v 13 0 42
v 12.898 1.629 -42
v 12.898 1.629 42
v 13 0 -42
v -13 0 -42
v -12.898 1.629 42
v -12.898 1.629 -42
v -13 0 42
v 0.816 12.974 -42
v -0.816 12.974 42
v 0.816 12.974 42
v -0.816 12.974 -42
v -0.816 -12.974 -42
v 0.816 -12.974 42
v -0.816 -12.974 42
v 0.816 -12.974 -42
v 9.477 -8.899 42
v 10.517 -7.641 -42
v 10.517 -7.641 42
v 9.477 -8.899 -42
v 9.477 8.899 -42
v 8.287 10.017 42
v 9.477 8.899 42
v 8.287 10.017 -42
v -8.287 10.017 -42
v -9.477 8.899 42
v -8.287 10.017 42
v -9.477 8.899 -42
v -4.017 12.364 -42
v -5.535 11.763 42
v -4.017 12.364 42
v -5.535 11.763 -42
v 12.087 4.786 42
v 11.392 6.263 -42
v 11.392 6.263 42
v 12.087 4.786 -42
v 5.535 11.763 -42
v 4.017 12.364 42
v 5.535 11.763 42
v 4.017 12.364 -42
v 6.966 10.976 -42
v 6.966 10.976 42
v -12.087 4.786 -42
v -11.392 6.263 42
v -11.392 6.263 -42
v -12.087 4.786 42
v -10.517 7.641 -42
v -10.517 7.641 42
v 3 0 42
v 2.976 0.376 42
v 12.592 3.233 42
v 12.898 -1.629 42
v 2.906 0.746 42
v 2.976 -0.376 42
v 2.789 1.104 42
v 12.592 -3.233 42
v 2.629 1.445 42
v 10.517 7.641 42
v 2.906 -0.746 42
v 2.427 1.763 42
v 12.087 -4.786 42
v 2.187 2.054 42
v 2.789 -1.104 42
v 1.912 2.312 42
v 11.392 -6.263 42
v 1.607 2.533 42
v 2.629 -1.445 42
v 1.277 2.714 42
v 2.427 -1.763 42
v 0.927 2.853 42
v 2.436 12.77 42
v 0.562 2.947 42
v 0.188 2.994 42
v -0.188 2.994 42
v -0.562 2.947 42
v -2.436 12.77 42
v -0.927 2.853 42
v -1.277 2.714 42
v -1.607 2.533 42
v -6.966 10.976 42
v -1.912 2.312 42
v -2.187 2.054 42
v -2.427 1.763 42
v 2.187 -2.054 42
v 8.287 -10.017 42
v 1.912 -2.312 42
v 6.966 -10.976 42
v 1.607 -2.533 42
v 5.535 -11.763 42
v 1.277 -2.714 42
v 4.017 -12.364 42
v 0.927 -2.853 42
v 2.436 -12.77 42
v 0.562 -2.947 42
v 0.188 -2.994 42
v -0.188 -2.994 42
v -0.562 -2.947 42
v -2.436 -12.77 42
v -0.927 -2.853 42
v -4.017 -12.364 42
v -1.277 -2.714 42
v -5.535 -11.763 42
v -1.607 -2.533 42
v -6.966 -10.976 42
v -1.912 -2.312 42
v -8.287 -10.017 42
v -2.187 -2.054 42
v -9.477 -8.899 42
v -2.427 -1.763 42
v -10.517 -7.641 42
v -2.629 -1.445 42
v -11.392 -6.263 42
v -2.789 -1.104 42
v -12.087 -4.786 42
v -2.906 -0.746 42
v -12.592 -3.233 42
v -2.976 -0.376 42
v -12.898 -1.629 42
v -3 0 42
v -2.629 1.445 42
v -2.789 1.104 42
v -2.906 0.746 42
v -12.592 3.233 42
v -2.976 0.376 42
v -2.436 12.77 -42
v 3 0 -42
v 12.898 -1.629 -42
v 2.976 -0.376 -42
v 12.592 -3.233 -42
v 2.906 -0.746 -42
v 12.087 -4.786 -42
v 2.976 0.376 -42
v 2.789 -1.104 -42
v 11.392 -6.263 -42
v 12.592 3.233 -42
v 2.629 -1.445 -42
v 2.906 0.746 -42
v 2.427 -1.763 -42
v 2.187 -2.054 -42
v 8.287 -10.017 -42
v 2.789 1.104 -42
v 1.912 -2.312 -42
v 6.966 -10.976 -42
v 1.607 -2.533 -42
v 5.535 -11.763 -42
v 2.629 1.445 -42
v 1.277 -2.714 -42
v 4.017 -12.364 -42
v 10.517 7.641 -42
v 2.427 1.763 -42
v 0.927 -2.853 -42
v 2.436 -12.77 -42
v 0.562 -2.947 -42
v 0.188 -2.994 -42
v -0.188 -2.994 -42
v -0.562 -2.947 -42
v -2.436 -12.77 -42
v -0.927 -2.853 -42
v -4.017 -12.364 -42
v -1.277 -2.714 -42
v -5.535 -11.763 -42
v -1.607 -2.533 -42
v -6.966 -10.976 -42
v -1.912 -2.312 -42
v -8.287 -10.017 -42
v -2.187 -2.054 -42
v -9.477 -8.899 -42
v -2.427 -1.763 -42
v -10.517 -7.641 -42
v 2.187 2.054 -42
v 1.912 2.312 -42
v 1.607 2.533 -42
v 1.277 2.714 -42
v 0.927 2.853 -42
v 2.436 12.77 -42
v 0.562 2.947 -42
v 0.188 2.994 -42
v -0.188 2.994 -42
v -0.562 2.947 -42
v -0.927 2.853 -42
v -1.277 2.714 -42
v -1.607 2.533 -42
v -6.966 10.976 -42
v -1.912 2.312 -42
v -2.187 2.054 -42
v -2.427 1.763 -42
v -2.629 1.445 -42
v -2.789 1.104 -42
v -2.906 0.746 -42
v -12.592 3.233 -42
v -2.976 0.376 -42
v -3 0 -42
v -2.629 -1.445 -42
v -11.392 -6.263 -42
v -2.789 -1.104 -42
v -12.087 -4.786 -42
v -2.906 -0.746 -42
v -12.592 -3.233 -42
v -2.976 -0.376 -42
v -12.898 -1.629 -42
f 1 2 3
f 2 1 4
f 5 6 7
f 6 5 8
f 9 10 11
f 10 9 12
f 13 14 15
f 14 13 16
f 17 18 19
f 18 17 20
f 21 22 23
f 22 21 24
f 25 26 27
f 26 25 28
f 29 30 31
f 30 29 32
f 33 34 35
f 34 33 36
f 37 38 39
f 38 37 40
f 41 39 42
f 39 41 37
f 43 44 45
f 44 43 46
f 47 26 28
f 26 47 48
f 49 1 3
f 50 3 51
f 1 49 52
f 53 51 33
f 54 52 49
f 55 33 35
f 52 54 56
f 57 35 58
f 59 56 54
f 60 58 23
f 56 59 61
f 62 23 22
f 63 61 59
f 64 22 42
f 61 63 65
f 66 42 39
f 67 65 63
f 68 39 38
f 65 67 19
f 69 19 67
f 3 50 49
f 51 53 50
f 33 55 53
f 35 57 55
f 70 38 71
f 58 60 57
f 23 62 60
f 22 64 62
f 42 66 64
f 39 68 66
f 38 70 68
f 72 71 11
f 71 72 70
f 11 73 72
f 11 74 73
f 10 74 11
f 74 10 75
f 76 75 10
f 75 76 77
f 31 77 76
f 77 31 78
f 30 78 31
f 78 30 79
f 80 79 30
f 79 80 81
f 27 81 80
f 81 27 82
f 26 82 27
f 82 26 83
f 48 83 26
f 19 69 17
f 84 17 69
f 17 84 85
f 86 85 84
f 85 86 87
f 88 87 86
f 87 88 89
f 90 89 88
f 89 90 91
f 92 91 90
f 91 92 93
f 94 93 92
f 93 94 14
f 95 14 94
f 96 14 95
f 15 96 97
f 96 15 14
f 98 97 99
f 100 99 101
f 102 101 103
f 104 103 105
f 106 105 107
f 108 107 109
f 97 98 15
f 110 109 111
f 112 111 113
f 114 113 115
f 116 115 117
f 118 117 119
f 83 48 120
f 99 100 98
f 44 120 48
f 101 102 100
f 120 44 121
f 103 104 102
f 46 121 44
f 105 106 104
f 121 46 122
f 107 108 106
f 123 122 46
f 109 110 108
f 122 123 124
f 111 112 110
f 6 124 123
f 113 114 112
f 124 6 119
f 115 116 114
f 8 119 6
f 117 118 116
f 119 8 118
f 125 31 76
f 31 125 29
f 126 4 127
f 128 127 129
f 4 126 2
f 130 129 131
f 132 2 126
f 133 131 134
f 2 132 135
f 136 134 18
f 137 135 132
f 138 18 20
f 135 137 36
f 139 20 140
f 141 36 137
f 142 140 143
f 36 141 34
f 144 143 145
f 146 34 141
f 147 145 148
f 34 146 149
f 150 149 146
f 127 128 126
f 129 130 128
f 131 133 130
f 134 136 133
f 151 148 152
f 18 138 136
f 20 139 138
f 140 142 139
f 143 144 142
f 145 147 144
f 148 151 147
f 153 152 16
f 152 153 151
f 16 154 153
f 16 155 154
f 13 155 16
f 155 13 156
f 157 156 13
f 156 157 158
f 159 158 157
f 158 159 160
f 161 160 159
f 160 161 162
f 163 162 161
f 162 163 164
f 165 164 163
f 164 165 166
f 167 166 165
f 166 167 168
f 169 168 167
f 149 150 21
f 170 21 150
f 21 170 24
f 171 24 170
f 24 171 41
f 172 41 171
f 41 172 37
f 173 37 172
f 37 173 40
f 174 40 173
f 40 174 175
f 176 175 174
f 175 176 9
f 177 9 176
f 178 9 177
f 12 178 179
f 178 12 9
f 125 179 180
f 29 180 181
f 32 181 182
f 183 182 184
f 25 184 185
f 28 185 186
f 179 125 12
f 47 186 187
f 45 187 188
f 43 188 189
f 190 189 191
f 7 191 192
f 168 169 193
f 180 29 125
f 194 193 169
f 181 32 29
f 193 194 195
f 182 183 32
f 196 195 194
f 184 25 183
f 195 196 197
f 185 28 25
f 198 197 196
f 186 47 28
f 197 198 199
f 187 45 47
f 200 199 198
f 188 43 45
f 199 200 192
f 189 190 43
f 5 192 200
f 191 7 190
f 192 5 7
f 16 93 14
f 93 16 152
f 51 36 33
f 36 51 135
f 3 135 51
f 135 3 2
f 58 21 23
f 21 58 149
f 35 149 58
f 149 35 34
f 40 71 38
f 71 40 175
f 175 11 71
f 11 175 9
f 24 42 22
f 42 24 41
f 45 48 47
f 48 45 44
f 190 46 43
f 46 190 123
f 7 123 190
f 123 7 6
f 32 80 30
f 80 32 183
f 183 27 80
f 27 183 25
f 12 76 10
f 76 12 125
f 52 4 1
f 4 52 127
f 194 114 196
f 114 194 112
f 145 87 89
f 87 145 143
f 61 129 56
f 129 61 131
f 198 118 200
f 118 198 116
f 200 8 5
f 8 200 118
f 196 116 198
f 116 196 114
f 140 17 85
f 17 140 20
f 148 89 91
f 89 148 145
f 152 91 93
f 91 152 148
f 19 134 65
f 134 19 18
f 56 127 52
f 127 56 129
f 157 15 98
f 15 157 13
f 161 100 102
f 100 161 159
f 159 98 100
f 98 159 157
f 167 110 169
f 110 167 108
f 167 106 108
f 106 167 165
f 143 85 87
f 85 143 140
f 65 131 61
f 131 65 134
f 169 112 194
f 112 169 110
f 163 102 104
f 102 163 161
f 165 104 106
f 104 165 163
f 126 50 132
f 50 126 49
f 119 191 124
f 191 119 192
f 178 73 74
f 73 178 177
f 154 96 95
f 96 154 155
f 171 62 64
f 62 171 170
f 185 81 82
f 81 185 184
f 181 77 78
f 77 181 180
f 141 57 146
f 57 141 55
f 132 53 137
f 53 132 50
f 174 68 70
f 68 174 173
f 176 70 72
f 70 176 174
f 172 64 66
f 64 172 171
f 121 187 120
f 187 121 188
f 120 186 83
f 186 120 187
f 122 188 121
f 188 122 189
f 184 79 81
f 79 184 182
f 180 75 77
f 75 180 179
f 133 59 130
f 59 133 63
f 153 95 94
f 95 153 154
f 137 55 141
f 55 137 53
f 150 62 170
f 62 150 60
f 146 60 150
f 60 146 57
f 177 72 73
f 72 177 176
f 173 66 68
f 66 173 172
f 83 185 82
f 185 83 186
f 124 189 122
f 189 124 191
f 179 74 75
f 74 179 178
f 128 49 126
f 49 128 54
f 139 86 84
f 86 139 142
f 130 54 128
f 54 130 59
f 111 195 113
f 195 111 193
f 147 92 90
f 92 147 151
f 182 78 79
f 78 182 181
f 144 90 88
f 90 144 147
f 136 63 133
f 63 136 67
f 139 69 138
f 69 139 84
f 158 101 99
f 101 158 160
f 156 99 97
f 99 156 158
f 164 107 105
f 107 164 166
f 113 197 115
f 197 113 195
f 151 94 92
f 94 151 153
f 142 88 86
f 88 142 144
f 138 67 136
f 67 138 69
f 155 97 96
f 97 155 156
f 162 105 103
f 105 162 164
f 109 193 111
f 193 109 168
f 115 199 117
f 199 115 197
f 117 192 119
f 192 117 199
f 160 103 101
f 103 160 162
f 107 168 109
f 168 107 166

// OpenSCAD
$fn = 50;


difference() {
	union() {
		translate(v = [0, 0, -42.0000000000]) {
			cylinder(h = 84, r = 13.0000000000);
		}
	}
	union() {
		translate(v = [0, 0, -100.0000000000]) {
			cylinder(h = 200, r = 3.0000000000);
		}
	}
}
